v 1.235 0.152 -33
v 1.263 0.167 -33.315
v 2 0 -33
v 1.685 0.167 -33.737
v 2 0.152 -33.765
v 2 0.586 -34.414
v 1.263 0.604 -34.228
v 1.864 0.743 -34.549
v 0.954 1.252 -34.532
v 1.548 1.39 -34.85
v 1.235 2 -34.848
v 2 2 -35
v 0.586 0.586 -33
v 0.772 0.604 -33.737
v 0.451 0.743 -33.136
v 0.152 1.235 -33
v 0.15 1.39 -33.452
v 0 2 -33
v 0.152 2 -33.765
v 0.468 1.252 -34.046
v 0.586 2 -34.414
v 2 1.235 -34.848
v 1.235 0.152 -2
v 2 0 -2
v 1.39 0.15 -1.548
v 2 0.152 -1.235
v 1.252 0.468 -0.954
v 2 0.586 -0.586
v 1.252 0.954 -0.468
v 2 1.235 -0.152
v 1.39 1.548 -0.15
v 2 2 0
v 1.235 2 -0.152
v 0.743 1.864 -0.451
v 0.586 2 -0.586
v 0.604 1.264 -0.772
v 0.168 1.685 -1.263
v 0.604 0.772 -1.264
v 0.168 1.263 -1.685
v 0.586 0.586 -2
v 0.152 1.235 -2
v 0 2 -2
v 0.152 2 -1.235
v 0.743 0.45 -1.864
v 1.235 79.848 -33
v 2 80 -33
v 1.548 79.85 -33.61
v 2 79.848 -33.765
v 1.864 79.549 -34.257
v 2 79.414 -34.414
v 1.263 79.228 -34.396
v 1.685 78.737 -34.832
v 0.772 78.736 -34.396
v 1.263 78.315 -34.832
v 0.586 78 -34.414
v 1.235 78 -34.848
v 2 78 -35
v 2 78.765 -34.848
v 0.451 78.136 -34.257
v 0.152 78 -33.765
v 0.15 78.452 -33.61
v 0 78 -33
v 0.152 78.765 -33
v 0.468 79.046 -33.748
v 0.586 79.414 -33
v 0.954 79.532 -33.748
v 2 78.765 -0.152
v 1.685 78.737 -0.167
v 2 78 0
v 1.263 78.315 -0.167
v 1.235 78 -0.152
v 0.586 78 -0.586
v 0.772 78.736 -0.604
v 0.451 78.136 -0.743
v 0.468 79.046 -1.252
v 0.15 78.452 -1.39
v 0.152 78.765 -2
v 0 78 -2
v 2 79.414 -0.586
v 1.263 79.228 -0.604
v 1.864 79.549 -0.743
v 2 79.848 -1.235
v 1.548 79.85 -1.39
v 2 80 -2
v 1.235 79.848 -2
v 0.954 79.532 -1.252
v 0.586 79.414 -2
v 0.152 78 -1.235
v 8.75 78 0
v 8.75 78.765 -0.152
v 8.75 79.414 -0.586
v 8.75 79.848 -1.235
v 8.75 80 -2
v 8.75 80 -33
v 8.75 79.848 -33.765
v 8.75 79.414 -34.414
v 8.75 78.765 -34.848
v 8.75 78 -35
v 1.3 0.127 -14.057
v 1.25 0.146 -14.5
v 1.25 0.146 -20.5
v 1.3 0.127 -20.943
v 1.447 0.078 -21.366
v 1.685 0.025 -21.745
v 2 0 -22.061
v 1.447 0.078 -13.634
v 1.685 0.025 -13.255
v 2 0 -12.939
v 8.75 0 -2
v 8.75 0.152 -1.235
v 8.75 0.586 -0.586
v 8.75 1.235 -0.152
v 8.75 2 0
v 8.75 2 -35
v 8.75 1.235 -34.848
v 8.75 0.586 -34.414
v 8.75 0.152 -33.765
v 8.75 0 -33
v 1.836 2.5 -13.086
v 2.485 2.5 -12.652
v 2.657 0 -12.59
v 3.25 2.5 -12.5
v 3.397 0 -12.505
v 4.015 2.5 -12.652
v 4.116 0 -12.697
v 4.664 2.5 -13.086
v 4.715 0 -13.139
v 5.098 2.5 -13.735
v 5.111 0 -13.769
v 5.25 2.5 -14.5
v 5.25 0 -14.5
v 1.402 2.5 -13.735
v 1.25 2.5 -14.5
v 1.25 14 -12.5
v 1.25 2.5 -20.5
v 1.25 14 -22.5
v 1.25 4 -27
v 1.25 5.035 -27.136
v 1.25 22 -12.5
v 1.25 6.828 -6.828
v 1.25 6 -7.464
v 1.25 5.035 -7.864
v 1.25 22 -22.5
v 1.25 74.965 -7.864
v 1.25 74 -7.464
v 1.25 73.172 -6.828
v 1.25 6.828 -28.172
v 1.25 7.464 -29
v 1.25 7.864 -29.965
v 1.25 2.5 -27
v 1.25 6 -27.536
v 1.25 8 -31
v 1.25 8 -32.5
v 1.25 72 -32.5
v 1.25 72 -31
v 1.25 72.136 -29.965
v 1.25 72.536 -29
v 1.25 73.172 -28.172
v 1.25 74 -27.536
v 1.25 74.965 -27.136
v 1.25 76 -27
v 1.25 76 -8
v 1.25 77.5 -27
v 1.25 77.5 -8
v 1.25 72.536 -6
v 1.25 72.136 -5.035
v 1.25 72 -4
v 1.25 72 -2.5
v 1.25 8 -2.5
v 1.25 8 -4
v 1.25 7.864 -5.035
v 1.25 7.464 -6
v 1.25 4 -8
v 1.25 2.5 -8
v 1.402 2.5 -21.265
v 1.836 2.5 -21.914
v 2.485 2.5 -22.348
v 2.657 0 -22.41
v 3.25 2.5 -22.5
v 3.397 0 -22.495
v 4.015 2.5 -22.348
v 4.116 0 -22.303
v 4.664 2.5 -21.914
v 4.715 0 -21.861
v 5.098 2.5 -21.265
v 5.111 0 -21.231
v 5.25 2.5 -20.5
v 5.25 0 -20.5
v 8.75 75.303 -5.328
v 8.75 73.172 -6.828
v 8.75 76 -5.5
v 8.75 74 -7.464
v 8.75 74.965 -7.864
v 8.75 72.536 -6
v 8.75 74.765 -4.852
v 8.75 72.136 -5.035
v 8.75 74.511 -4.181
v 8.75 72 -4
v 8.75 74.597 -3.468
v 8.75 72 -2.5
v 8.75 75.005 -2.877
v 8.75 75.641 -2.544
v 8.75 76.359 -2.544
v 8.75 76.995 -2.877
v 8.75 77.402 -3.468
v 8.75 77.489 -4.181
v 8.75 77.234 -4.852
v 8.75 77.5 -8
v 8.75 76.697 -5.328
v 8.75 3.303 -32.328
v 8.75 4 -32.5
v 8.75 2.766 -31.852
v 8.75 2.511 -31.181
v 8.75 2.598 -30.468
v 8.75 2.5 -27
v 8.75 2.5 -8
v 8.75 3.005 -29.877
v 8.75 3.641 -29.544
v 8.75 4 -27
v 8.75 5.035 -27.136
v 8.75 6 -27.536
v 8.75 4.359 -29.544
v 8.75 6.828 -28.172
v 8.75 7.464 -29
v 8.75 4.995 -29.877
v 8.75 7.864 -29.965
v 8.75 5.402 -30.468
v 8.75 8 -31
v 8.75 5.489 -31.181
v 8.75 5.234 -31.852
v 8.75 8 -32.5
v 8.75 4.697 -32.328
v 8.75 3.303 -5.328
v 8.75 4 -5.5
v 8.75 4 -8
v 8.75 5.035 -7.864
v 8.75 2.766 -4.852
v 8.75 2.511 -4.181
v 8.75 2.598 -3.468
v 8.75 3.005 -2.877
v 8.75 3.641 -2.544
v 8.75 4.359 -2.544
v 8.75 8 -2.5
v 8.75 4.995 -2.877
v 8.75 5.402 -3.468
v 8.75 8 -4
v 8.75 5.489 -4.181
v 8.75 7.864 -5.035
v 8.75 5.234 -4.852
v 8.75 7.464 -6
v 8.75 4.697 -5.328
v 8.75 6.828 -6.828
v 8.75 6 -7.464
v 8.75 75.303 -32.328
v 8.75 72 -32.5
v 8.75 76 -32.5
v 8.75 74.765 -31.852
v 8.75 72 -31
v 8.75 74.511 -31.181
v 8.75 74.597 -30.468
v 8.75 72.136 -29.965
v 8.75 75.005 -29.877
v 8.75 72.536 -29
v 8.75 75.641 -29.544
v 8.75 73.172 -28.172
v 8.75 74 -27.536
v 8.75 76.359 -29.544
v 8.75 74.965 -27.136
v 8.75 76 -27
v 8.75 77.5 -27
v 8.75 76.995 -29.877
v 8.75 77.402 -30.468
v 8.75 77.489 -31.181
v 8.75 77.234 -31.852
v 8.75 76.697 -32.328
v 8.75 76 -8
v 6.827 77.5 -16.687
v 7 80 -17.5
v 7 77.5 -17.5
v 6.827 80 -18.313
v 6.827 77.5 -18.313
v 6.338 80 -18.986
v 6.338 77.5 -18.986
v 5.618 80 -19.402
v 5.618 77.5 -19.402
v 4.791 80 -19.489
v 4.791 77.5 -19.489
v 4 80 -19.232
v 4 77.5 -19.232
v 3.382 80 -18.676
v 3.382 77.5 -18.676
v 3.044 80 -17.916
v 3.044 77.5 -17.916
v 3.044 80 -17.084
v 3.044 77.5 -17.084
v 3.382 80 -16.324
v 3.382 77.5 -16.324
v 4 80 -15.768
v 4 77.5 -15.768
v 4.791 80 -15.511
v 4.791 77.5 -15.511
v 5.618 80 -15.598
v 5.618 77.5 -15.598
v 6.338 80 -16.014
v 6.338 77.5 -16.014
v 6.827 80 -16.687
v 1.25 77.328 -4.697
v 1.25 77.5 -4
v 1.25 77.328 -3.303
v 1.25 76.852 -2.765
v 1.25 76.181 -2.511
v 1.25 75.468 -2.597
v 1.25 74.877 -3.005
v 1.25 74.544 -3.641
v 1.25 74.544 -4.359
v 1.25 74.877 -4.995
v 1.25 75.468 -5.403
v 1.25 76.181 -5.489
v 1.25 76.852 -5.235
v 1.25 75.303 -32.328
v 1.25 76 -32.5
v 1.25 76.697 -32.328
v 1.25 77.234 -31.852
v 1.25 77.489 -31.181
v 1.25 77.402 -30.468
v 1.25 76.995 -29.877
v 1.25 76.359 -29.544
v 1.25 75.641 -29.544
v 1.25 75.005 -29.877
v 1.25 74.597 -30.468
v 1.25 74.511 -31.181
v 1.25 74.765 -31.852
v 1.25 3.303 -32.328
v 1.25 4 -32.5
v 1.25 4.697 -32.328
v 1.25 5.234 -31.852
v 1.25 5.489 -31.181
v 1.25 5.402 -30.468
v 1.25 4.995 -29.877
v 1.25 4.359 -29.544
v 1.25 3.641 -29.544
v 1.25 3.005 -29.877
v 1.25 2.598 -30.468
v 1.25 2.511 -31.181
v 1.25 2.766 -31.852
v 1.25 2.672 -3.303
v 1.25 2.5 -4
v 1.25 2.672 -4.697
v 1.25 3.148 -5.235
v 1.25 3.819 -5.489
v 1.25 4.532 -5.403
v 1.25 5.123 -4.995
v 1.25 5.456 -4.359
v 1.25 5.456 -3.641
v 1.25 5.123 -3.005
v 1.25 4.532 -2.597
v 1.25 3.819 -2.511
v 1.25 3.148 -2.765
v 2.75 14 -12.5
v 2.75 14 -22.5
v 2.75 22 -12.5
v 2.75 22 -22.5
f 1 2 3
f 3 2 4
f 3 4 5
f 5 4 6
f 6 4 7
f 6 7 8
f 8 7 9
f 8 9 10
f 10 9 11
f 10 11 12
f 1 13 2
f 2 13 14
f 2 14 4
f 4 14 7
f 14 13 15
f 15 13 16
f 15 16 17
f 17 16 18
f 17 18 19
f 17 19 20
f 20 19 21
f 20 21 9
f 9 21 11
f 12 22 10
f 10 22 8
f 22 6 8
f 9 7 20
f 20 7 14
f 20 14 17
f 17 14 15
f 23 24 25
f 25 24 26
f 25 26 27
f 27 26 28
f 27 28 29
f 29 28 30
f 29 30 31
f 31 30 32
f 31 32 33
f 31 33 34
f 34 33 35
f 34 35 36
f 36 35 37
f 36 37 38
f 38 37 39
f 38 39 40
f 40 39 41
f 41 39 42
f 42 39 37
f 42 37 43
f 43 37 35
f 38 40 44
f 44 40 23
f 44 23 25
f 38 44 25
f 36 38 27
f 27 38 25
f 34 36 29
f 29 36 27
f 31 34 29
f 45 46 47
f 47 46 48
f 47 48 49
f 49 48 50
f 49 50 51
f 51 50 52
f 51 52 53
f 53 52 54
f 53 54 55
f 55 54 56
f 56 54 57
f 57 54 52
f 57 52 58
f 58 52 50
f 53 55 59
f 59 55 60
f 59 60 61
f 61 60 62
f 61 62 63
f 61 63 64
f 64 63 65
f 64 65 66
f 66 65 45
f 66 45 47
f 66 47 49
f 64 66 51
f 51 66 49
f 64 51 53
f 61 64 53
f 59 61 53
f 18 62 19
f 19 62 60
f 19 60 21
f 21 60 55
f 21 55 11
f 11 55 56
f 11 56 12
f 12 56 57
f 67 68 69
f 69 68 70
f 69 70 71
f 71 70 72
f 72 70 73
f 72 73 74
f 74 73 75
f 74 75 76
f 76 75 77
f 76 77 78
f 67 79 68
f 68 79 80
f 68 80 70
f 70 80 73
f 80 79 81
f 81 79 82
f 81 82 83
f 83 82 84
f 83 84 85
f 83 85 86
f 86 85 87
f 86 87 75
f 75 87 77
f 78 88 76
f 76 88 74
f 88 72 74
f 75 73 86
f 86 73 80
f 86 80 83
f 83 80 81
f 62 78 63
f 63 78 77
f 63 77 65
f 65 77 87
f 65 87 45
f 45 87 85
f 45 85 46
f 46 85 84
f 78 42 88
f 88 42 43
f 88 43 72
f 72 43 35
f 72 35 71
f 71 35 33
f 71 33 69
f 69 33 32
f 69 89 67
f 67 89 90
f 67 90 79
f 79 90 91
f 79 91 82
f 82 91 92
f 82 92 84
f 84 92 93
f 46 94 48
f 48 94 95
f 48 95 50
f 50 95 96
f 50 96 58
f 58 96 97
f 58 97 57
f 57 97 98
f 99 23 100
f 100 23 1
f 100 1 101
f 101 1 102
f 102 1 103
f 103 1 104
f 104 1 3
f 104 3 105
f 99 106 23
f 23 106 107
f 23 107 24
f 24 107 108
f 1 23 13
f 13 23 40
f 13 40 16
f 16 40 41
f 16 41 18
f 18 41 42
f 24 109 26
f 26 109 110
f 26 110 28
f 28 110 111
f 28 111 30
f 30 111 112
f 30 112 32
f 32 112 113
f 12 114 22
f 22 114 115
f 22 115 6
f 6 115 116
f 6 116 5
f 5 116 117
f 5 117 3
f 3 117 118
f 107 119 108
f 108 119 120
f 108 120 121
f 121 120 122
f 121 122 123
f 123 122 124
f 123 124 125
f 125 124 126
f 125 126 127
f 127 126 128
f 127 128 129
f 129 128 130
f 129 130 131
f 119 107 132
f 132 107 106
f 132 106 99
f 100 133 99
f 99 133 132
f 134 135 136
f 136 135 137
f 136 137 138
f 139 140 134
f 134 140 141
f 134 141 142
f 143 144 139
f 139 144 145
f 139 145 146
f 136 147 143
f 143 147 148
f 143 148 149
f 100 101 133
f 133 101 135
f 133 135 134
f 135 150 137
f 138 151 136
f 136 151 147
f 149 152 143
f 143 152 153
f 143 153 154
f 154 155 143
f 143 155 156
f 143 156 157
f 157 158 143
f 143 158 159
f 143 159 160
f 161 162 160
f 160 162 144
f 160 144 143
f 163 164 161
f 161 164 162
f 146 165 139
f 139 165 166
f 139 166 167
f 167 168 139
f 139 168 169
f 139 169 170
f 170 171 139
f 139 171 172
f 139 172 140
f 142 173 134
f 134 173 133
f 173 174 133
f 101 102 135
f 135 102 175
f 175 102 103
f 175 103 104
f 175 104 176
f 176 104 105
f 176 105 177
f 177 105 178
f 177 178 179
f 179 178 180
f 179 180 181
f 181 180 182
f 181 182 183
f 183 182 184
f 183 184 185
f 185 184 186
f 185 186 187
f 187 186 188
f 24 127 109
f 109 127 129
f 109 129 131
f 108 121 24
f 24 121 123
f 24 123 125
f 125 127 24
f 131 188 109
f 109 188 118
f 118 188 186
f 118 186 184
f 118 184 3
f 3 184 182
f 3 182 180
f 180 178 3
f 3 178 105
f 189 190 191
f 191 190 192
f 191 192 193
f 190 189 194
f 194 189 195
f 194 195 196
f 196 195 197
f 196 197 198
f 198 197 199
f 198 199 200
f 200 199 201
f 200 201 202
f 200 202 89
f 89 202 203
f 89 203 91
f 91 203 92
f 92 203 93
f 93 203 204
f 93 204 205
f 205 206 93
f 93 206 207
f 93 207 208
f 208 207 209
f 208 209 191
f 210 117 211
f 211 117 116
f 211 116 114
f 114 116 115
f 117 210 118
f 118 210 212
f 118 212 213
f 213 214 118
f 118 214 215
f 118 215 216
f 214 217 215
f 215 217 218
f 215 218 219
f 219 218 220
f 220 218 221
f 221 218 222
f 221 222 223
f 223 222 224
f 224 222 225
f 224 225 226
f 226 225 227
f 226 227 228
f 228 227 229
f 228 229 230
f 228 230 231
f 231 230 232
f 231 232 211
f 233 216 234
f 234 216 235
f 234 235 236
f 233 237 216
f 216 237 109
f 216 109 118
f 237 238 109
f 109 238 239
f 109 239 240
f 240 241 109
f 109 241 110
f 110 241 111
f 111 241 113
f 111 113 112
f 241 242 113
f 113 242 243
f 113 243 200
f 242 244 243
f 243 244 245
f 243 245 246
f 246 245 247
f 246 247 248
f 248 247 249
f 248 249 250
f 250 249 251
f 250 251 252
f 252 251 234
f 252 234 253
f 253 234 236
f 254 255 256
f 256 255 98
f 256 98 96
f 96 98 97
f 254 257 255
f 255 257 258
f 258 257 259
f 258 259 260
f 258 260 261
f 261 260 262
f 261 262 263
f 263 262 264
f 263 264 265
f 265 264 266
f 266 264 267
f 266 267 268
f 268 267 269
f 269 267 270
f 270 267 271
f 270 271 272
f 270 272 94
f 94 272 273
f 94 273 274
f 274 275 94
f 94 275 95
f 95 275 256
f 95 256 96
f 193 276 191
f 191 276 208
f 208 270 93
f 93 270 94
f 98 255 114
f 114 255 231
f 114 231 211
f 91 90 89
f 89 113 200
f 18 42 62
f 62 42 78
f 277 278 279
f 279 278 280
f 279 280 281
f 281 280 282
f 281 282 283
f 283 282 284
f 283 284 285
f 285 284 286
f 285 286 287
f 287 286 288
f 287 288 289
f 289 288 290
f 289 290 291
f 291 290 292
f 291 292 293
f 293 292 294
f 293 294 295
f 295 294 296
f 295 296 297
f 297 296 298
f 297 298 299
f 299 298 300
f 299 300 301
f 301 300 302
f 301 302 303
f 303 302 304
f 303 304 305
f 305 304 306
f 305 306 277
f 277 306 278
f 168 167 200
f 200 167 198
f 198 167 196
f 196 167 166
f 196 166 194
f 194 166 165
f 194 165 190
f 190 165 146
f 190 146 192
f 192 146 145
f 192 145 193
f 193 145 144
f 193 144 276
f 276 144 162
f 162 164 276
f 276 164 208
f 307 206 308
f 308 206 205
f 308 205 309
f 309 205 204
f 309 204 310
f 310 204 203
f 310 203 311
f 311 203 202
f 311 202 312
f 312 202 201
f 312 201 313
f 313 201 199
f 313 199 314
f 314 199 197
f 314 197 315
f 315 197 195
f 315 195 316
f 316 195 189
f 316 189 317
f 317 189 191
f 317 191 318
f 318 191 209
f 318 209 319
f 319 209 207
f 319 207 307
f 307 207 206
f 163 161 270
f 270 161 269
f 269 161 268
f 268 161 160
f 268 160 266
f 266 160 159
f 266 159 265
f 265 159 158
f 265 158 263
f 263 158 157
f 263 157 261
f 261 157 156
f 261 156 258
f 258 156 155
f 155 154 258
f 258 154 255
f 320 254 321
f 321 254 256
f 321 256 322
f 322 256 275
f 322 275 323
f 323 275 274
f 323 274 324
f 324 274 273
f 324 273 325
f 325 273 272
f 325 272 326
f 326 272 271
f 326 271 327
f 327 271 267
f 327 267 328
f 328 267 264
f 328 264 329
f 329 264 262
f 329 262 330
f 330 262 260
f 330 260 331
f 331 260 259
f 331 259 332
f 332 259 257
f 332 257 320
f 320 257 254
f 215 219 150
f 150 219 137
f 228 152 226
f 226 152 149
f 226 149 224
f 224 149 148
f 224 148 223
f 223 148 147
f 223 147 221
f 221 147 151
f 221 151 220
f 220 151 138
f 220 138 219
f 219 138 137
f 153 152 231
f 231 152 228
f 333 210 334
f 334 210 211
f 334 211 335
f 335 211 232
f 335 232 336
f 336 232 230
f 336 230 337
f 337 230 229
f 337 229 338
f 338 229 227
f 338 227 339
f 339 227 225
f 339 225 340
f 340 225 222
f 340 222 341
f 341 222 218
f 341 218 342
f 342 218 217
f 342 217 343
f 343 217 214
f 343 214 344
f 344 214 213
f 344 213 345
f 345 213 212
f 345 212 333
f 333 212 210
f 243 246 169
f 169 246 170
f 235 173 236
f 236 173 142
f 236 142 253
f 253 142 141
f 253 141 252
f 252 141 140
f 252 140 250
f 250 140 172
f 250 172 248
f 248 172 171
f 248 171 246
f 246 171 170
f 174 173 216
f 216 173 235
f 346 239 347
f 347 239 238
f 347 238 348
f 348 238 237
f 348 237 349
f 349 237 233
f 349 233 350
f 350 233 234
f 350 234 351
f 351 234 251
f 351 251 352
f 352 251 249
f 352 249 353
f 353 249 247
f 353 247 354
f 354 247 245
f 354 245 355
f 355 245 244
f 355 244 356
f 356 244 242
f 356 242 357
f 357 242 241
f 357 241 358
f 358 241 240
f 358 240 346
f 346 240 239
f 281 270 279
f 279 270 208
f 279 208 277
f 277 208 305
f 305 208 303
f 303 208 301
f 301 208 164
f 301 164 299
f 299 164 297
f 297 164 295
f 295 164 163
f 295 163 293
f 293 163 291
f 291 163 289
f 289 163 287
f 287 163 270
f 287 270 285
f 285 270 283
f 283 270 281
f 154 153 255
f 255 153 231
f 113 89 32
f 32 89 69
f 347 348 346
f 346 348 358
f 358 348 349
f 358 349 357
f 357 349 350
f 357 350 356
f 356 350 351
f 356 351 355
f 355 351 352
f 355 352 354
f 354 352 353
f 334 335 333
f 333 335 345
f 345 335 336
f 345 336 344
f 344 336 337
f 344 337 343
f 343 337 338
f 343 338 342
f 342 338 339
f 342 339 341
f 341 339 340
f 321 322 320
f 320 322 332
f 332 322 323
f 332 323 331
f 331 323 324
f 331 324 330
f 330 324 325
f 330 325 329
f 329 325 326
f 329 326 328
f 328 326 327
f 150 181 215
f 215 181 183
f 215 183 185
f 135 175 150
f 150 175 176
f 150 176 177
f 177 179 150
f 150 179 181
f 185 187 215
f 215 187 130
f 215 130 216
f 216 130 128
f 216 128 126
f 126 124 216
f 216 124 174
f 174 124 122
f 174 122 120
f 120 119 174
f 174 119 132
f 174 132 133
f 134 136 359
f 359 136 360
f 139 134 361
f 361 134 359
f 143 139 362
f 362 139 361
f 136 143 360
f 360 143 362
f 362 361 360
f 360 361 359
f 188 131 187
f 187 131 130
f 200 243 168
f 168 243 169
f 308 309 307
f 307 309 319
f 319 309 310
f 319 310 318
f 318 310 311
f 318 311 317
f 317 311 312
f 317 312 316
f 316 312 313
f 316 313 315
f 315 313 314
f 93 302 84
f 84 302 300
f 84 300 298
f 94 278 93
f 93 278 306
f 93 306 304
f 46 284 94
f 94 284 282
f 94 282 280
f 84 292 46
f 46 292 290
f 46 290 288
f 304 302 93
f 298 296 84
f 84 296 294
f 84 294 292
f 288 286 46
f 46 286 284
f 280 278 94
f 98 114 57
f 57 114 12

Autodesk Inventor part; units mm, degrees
ref_plane "YZ Plane" through (0, 0, 0) normal (1, 0, 0) x (0, 1, 0)
ref_plane "XZ Plane" through (0, 0, 0) normal (0, 1, 0) x (-1, 0, 0)
ref_plane "XY Plane" through (0, 0, 0) normal (0, 0, 1) x (1, 0, 0)
sketch "스케치1" plane through (0, 0, 0) normal (1, 0, 0) x (0, 1, 0)
  line L0 (0, 0) -> (80, 0)
  line L1 (80, 0) -> (80, -35)
  line L2 (80, -35) -> (0, -35)
  line L3 (0, -35) -> (0, 0)
  dimension "d0" = 35
  dimension "d1" = 80
extrude "돌출1" add sketch "스케치1" along normal blind 8.75
sketch "스케치2" plane through (8.75, 0, 0) normal (1, 0, 0) x (0, 0, -1)
  line L0 (35, 80) -> (0, 80) projected
  line L1 (35, 0) -> (35, 80) projected
  line L2 (0, 80) -> (0, 0) projected
  line L3 (0, 0) -> (35, 0) projected
  line L4 (2.5, 77.5) -> (32.5, 77.5)
  line L5 (32.5, 77.5) -> (32.5, 2.5)
  line L6 (32.5, 2.5) -> (2.5, 2.5)
  line L7 (2.5, 2.5) -> (2.5, 77.5)
  dimension "d4" = 2.5
extrude "돌출2" cut sketch "스케치2" against normal blind 7.5 contours L4 L5 L6 L7
sketch "스케치3" plane through (0, 0, -35) normal (0, -1, 0) x (1, 0, 0)
  line L0 (1.25, 22.5) -> (5.25, 22.5)
  line L1 (5.25, 22.5) -> (5.25, 12.5)
  line L2 (5.25, 12.5) -> (1.25, 12.5)
  line L3 (1.25, 12.5) -> (1.25, 22.5)
  line L4 (1.25, 2.5) -> (1.25, 32.5) projected
  line L5 (0, 0) -> (8.75, 0) projected
  line L6 (0, 35) -> (8.75, 35) projected
  circle A0 centre (3.25, 14.5) radius 2
  circle A1 centre (3.25, 20.5) radius 2
  point P0 (1.25, 14.5)
  point P1 (5.25, 14.5)
  point P2 (5.25, 20.5)
  point P3 (1.25, 20.5)
  dimension "d7" = 4
  dimension "d8" = 10
  dimension "d9" = 12.5
  dimension "d10" = 35
extrude "돌출3" cut sketch "스케치3" against normal blind 2.5 contours A1 | A1 L1 A0 L3 | A0
sketch "스케치6" plane through (1.25, 0, 0) normal (1, 0, 0) x (0, 0, -1)
  line L0 (12.5, 14) -> (22.5, 14)
  line L1 (22.5, 14) -> (22.5, 22)
  line L2 (22.5, 22) -> (12.5, 22)
  line L3 (12.5, 22) -> (12.5, 14)
  line L4 (14.5, 0) -> (12.5, 0) projected
  line L5 (22.5, 0) -> (20.5, 0) projected
  line L6 (20.5, 0) -> (14.5, 0) projected
  point P0 (0, 0)
  dimension "d22" = 14
  dimension "d23" = 8
extrude "돌출6" add sketch "스케치6" along normal blind 1.5
sketch "스케치4" plane through (8.75, 0, 0) normal (1, 0, 0) x (0, 0, -1)
  line L0 (35, 0) -> (27, 0)
  line L1 (27, 0) -> (27, 8)
  line L2 (27, 8) -> (35, 8)
  line L3 (35, 8) -> (35, 0)
  line L4 (0, 0) -> (8, 0)
  line L5 (8, 0) -> (8, 8)
  line L6 (8, 8) -> (0, 8)
  line L7 (0, 8) -> (0, 0)
  line L8 (0, 80) -> (8, 80)
  line L9 (8, 80) -> (8, 72)
  line L10 (8, 72) -> (0, 72)
  line L11 (0, 72) -> (0, 80)
  line L12 (35, 0) -> (35, 80) projected
  line L13 (35, 80) -> (27, 80)
  line L14 (27, 80) -> (27, 72)
  line L15 (27, 72) -> (35, 72)
  line L16 (35, 72) -> (35, 80)
  circle A0 centre (4, 76) radius 4
  circle A1 centre (31, 76) radius 4
  circle A2 centre (31, 4) radius 4
  circle A3 centre (4, 4) radius 4
  circle A4 centre (4, 4) radius 1.5
  circle A5 centre (31, 4) radius 1.5
  circle A6 centre (31, 76) radius 1.5
  circle A7 centre (4, 76) radius 1.5
  point P0 (8, 4)
  point P1 (4, 8)
  point P2 (31, 8)
  point P3 (27, 4)
  point P4 (4, 72)
  point P5 (8, 76)
  point P6 (27, 76)
  point P7 (31, 72)
  dimension "d14" = 8
  dimension "d16" = 3
extrude "돌출4" add sketch "스케치4" against normal up to next contours L0 A2 L3 | L0 L1 A2 | A2 | A2 L2 L3 | L7 A3 L4 | A3 L5 L4 | A3 | L7 L6 A3 | L8 A0 L11 | L8 L9 A0 | A0 | A0 L10 L11 | L15 A1 L12 | A1 L13 L12 | A1 | A1 L14 L13
sketch "스케치7" plane through (0, 80, 0) normal (0, 1, 0) x (1, 0, 0)
  circle A0 centre (5, 17.5) radius 2
  line L0 (0, 35) -> (8.75, 35) projected
  line L1 (0, 0) -> (8.75, 0) projected
  line L2 (0, 35) -> (0, 0) projected
  point P0 (-3.75, 35)
  point P1 (0, 27)
  dimension "d26" = 4
  dimension "d27" = 35
  dimension "d28" = 17.5
  dimension "d29" = 5
extrude "돌출7" cut sketch "스케치7" against normal blind 2.5
fillet "모깎기2" radius 2 8 edges at (4.375, 80, 0) (0, 80, -17.5) (0, 40, -35) (4.375, 0, -35) (0, 0, -17.5) (0, 40, 0) (4.375, 0, 0) (4.375, 80, -35)
equation "\"d9\" = -0.5 * d8 + 0.5 * d10"
equation "\"d28\" = 0.5 * d27"
properties part number "111"
